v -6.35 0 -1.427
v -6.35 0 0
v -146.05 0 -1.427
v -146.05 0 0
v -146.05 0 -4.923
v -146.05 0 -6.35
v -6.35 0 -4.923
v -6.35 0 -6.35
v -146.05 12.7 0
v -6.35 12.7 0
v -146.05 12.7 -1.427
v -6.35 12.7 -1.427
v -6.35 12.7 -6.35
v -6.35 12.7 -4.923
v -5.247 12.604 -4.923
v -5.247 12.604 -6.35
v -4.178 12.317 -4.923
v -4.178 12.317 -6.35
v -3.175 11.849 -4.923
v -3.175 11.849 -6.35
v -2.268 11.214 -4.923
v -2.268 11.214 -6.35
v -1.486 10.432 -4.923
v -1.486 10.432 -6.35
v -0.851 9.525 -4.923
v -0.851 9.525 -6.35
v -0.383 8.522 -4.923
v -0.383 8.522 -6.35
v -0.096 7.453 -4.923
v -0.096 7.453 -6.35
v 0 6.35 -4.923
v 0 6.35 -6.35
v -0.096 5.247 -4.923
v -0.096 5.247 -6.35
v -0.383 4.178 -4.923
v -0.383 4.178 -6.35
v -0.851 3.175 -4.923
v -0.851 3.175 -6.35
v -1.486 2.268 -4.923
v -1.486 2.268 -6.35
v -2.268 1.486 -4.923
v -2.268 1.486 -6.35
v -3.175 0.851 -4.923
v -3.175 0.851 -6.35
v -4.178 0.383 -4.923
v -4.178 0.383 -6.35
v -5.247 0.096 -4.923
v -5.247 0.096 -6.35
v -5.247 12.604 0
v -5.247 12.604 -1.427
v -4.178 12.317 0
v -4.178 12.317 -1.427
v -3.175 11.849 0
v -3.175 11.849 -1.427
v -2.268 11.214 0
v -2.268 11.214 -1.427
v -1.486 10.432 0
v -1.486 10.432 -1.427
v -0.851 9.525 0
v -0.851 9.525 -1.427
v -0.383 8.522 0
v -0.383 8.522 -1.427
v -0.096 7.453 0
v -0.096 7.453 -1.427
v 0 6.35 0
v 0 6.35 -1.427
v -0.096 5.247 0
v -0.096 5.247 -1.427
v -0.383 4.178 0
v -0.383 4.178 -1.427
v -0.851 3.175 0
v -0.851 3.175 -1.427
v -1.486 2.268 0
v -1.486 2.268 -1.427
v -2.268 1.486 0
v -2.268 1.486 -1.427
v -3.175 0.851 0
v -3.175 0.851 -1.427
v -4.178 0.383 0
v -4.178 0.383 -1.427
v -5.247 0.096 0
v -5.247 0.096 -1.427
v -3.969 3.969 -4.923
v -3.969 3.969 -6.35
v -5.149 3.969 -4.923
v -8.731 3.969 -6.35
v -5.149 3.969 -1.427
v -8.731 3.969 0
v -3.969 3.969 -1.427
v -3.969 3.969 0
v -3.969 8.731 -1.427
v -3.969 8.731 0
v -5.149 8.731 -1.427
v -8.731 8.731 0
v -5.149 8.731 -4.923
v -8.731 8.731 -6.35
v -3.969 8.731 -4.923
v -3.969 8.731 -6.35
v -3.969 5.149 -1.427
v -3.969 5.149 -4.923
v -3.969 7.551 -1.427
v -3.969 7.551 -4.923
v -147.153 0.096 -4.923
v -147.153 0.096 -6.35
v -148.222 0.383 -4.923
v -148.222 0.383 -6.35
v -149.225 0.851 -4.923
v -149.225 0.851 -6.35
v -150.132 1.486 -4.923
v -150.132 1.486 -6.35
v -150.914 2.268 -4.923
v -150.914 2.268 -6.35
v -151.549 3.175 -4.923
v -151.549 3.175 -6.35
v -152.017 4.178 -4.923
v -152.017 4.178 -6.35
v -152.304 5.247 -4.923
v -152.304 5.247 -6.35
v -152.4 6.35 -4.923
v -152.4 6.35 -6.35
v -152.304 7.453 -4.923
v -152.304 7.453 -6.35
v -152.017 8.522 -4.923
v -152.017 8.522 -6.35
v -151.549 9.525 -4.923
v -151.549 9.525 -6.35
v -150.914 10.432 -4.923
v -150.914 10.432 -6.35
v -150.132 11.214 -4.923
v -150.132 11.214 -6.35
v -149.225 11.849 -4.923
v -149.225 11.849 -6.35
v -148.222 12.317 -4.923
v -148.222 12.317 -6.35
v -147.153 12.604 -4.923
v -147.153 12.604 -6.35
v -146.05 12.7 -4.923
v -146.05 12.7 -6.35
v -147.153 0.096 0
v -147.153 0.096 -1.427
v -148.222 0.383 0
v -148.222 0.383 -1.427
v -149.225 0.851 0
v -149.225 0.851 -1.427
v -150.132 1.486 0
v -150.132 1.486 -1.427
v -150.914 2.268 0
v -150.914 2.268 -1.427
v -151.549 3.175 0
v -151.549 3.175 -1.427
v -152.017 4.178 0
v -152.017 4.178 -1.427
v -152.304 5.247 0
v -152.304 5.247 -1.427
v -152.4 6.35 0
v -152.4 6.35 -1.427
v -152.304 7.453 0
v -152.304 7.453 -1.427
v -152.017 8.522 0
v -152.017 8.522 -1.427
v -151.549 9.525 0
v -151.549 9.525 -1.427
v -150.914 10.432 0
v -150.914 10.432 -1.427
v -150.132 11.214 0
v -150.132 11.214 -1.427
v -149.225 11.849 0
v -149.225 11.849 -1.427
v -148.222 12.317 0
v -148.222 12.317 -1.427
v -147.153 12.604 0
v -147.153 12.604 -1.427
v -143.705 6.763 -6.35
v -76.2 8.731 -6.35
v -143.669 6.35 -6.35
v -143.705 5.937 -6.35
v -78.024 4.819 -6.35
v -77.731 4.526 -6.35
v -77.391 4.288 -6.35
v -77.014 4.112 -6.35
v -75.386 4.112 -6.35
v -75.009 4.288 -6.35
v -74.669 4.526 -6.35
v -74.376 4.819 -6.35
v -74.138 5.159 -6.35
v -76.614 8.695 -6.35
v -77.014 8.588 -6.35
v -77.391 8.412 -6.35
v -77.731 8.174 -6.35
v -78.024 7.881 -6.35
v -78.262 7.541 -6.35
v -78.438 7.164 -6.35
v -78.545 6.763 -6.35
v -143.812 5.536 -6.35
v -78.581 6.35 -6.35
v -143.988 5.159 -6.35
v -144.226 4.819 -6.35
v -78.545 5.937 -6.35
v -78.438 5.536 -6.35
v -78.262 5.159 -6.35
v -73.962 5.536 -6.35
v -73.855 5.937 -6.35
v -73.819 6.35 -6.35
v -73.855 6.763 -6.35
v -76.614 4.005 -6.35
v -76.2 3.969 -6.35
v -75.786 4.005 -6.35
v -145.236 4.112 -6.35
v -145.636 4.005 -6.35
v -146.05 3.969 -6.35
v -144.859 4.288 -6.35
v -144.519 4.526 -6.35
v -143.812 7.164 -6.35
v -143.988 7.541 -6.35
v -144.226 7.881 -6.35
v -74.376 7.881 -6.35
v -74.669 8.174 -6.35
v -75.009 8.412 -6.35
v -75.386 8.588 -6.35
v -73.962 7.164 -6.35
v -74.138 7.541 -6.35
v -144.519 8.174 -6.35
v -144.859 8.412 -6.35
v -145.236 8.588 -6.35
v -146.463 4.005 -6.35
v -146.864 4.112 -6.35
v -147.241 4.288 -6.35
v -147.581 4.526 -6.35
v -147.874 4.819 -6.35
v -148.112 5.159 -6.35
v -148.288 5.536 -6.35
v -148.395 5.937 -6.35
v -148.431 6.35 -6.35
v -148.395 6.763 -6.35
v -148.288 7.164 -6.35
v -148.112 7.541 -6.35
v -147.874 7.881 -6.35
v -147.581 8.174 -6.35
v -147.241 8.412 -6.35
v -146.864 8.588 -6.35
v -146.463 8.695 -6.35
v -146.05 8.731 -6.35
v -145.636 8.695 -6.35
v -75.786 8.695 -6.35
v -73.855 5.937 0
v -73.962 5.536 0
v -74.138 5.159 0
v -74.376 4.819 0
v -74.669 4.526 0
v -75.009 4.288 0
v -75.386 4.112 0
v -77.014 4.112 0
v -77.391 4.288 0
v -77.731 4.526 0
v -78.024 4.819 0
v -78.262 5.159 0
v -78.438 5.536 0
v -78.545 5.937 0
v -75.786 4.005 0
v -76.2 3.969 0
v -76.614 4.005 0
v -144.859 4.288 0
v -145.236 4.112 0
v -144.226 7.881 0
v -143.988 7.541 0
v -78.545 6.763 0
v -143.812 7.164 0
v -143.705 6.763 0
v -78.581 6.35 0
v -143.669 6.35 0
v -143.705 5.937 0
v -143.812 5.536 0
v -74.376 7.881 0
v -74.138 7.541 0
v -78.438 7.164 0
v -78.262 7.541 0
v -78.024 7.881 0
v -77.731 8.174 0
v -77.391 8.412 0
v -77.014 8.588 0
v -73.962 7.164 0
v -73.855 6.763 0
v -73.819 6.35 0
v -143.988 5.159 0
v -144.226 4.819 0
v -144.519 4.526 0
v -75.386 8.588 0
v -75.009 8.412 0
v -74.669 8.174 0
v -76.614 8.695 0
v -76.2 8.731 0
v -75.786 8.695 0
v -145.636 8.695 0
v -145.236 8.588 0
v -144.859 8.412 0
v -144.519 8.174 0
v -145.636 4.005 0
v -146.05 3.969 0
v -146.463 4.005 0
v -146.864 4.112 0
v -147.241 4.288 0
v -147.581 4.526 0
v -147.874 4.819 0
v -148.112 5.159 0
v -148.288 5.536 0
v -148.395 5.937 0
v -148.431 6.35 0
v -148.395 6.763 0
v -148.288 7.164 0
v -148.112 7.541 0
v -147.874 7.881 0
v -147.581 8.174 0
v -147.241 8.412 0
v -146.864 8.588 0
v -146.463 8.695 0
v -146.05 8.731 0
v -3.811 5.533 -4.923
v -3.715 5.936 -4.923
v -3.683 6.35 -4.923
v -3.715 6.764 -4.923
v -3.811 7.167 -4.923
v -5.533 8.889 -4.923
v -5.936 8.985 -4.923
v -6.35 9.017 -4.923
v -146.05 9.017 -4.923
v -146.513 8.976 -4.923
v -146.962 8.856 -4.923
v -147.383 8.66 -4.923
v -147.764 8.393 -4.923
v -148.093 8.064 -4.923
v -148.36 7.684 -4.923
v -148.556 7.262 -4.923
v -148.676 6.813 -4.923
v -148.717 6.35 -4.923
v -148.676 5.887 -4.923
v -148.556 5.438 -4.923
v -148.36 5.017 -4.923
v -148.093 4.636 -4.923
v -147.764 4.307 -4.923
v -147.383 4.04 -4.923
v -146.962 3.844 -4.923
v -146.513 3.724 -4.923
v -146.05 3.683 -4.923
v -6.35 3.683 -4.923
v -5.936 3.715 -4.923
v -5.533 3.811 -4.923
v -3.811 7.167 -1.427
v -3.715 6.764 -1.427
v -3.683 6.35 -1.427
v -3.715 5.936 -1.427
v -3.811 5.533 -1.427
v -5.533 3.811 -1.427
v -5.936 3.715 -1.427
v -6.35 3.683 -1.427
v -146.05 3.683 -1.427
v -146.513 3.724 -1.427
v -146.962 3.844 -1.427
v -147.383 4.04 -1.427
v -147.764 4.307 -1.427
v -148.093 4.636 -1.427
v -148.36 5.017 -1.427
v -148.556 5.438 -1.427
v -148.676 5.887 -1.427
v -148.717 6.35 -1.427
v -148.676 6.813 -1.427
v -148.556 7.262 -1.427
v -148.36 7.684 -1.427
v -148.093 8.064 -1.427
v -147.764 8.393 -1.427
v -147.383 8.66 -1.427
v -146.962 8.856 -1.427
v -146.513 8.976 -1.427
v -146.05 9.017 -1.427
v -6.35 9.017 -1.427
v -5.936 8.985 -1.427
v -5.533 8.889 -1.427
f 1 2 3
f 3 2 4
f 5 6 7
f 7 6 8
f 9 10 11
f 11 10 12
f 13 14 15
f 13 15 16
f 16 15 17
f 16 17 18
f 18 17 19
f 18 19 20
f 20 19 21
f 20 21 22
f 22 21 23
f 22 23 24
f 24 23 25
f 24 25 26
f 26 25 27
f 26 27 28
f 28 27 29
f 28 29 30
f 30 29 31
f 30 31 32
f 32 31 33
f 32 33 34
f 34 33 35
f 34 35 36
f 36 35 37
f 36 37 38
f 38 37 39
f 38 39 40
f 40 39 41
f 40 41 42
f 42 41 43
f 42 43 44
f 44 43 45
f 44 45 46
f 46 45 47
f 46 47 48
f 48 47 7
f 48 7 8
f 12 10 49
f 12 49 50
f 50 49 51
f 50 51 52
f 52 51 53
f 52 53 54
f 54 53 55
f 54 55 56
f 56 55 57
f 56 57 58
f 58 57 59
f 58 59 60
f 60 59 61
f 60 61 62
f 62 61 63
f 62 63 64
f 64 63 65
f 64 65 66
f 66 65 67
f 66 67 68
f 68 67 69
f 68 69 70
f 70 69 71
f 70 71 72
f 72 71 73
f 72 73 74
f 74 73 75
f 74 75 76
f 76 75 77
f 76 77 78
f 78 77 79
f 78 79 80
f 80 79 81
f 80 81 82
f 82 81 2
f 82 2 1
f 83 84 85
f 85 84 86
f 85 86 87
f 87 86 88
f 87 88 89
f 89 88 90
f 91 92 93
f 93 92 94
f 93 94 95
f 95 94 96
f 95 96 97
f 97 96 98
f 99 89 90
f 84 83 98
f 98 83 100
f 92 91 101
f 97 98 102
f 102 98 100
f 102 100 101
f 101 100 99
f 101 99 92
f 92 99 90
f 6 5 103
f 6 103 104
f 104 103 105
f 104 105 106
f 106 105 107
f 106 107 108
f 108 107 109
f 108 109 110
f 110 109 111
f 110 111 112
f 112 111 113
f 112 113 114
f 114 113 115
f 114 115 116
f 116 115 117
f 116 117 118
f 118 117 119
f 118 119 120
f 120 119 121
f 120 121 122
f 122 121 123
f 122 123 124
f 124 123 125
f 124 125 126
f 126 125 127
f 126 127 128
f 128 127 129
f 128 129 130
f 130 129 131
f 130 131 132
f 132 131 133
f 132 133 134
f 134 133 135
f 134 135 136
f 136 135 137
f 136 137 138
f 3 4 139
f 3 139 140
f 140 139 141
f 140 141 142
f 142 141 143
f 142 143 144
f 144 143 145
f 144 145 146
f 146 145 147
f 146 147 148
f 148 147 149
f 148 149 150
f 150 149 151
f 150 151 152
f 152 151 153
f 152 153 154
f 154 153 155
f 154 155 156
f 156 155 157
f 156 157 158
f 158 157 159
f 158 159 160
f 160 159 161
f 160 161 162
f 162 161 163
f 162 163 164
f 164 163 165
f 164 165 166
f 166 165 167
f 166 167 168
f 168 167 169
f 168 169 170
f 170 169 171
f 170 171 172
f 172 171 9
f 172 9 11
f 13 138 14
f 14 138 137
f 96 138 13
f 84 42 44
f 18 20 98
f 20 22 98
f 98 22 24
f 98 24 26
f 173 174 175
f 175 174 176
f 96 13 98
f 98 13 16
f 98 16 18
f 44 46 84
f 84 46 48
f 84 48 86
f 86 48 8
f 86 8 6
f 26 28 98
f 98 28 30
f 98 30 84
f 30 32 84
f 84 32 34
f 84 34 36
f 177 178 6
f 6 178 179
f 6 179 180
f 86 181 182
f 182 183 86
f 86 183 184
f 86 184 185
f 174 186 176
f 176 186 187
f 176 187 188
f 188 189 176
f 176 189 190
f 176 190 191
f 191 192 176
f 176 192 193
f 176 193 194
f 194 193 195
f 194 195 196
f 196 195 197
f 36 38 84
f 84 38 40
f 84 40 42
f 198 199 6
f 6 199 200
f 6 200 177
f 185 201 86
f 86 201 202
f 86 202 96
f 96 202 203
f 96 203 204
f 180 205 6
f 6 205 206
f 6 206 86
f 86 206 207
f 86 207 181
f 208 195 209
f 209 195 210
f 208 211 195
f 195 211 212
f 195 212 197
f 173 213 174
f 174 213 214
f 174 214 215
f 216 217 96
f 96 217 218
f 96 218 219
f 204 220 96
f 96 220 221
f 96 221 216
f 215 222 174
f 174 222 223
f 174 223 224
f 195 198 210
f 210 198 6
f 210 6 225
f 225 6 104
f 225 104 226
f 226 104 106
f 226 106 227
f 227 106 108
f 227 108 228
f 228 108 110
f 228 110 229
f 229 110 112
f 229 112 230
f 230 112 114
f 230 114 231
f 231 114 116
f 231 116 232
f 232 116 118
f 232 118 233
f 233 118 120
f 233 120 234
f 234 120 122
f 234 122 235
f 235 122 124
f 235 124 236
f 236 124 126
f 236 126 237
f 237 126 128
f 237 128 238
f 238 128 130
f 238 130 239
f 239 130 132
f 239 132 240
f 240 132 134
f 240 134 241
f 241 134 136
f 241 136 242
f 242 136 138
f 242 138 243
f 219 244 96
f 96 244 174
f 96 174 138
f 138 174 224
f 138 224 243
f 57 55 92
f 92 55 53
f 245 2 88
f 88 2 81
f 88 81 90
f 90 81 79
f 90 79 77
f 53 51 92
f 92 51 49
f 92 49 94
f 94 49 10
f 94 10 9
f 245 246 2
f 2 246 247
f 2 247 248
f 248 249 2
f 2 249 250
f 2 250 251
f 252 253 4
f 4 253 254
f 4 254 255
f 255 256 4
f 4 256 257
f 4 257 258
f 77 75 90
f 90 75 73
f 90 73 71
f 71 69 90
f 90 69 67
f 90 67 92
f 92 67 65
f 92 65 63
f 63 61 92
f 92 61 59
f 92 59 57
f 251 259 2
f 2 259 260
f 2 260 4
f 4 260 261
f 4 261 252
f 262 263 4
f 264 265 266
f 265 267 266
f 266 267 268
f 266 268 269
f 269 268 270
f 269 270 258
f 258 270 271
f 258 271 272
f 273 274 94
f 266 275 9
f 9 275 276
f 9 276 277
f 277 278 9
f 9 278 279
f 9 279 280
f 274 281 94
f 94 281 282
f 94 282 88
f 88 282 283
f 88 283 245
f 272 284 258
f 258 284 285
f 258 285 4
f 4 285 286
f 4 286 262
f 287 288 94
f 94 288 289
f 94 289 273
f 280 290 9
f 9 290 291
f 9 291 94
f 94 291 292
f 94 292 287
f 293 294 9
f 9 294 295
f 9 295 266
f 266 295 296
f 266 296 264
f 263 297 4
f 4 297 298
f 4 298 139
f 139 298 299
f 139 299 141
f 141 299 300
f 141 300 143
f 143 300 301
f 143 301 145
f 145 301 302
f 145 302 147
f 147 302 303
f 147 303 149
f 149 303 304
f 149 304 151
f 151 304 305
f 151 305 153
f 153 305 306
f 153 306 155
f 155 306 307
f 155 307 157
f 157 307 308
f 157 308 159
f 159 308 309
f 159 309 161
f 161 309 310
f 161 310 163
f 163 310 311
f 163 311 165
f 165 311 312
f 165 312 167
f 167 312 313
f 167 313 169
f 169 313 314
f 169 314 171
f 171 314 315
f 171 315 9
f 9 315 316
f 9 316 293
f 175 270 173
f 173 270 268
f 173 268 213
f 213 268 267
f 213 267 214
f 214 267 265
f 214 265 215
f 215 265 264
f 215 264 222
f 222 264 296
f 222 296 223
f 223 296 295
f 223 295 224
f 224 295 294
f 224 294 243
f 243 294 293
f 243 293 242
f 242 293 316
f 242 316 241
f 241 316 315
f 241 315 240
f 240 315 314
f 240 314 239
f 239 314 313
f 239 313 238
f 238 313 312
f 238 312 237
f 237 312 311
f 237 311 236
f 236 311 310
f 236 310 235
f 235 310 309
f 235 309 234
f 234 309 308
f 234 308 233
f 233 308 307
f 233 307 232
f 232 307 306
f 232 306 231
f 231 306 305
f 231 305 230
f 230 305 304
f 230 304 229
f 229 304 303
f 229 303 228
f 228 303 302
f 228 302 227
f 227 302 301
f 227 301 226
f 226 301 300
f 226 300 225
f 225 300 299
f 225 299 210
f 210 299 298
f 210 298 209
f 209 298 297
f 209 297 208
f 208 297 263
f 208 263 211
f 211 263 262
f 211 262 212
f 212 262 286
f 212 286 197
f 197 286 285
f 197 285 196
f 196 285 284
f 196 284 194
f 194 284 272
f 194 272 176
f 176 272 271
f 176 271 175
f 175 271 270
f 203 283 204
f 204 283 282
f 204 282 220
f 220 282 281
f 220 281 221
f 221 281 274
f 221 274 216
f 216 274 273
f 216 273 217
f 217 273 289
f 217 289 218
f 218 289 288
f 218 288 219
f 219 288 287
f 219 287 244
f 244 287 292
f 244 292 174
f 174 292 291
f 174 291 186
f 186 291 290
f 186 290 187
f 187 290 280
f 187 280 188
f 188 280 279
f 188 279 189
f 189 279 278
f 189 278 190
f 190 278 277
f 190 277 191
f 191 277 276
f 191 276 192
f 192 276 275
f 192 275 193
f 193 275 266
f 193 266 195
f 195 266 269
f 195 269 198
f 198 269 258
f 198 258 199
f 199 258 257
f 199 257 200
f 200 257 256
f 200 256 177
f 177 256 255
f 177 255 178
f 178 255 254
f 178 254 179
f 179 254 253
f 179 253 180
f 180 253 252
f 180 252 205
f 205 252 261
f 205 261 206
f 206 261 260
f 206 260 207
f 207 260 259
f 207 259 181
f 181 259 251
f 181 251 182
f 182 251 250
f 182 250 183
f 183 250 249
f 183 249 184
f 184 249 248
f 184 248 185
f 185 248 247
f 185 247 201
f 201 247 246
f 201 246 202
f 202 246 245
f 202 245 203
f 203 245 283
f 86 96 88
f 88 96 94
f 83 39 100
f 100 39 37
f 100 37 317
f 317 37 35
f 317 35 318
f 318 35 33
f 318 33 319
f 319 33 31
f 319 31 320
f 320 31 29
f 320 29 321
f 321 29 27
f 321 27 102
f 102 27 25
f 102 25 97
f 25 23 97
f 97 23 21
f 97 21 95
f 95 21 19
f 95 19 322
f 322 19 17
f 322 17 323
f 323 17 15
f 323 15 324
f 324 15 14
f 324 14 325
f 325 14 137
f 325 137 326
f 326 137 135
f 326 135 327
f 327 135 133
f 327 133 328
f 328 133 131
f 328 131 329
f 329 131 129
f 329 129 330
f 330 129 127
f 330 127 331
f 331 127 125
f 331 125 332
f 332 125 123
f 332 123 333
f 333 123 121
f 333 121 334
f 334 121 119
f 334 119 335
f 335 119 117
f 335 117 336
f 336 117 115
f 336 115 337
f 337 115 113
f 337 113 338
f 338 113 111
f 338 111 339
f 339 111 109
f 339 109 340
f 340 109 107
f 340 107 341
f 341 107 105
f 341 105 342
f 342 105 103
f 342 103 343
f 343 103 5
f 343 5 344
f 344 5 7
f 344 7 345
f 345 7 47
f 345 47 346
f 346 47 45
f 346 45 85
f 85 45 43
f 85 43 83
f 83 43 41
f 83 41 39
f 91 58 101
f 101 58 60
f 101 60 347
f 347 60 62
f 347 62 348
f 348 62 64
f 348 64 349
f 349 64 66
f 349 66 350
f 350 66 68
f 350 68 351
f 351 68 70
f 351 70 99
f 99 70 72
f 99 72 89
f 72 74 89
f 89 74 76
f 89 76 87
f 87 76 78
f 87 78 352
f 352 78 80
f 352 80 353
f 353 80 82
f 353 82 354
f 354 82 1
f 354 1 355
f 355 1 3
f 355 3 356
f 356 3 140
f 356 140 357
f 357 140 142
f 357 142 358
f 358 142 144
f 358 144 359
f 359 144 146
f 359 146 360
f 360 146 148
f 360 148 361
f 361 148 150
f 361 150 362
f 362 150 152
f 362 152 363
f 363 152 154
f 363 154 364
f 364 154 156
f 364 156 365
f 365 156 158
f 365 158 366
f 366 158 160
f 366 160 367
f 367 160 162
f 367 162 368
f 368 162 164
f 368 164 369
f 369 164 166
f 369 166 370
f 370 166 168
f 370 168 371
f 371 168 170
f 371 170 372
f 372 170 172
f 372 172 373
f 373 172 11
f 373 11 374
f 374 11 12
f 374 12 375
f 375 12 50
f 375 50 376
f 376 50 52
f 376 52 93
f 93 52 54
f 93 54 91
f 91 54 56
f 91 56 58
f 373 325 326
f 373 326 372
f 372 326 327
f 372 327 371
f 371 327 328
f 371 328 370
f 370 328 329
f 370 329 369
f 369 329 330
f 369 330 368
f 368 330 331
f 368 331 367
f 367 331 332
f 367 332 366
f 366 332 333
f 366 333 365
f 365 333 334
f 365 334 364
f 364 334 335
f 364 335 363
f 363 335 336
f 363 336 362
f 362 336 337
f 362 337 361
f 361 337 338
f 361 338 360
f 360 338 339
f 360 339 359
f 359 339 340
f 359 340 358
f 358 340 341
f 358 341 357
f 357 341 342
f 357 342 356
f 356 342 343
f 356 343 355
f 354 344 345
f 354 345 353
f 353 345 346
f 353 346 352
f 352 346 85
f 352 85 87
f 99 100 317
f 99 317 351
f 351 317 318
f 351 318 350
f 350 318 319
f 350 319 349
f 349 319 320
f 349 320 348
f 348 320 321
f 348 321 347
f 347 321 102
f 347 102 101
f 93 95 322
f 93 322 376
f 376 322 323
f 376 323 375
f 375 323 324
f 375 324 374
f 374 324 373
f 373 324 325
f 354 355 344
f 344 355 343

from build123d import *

# Parameters (mm, degrees)
ESQUISSE1_W             = 152.4
ESQUISSE1_H             = 12.7
BOSS_EXTRU_1_DEPTH      = 6.35
ESQUISSE2_R             = 2.38125
ENL_V_MAT_EXTRU_1_DEPTH = 154.060029074
SKETCH1_W               = 14.17076538
SKETCH1_H               = 3.495000122
CUT_REVOLVE1_ANGLE      = 180
SKETCH2_W               = 3.495000122
SKETCH2_H               = 3.683
CUT_EXTRUDE1_DEPTH      = 154.060029074


with BuildPart() as part:
    # Esquisse1 → Boss.-Extru.1 (new body)
    with BuildSketch(Plane.XY):
        with Locations((-76.2, 6.35)):
            Rectangle(ESQUISSE1_W, ESQUISSE1_H)
    extrude(amount=-BOSS_EXTRU_1_DEPTH)

    # Esquisse2 → Enlèv. mat.-Extru.1 (cut, through all)
    with BuildSketch(Plane.XY):
        with Locations((-146.05, 6.35)):
            Circle(ESQUISSE2_R)
        with Locations((-76.2, 6.35)):
            Circle(ESQUISSE2_R)
        with Locations((-6.35, 6.35)):
            Circle(ESQUISSE2_R)
        with BuildLine():
            Line((0, 12.7), (-6.35, 12.7))
            ThreePointArc((-6.35, 12.7), (-1.859871939, 10.840128061), (0, 6.35))
            Line((0, 6.35), (0, 12.7))
        make_face()
        with BuildLine():
            Line((0, 0), (0, 6.35))
            ThreePointArc((0, 6.35), (-1.859871939, 1.859871939), (-6.35, 0))
            Line((-6.35, 0), (0, 0))
        make_face()
        with BuildLine():
            ThreePointArc((-152.4, 6.35), (-150.540128061, 10.840128061), (-146.05, 12.7))
            Line((-146.05, 12.7), (-152.4, 12.7))
            Line((-152.4, 12.7), (-152.4, 6.35))
        make_face()
        with BuildLine():
            ThreePointArc((-146.05, 0), (-150.540128061, 1.859871939), (-152.4, 6.35))
            Line((-152.4, 6.35), (-152.4, 0))
            Line((-152.4, 0), (-146.05, 0))
        make_face()
        with BuildLine():
            Line((-8.73125, 8.73125), (-8.73125, 6.35))
            ThreePointArc((-8.73125, 6.35), (-8.033798023, 8.033798023), (-6.35, 8.73125))
            Line((-6.35, 8.73125), (-8.73125, 8.73125))
        make_face()
        with BuildLine():
            ThreePointArc((-6.35, 8.73125), (-4.666201977, 8.033798023), (-3.96875, 6.35))
            Line((-3.96875, 6.35), (-3.96875, 8.73125))
            Line((-3.96875, 8.73125), (-6.35, 8.73125))
        make_face()
        with BuildLine():
            ThreePointArc((-3.96875, 6.35), (-4.666201977, 4.666201977), (-6.35, 3.96875))
            Line((-6.35, 3.96875), (-3.96875, 3.96875))
            Line((-3.96875, 3.96875), (-3.96875, 6.35))
        make_face()
        with BuildLine():
            Line((-8.73125, 6.35), (-8.73125, 3.96875))
            Line((-8.73125, 3.96875), (-6.35, 3.96875))
            ThreePointArc((-6.35, 3.96875), (-8.033798023, 4.666201977), (-8.73125, 6.35))
        make_face()
    extrude(amount=-ENL_V_MAT_EXTRU_1_DEPTH, mode=Mode.SUBTRACT)

    # Sketch1 → Cut-Revolve1 (revolve, symmetric, cut)
    with BuildSketch(Plane(origin=(0, 6.35, 0), x_dir=(1, 0, 0), z_dir=(0, 1, 0))) as cut_revolve1_sk:
        Polygon((-150.5585, 1.427499939), (-152.4, 1.427499939), (-152.4, 4.922500061), (-150.5585, 4.922500061), (-148.717, 4.922500061), (-148.717, 1.427499939), align=None)
        with Locations((-159.48538269, 3.175)):
            Rectangle(SKETCH1_W, SKETCH1_H)
    cut_revolve1 = revolve(axis=Axis((-146.05, 6.35, -6.35), (0, 0, 1)), revolution_arc=CUT_REVOLVE1_ANGLE / 2, mode=Mode.SUBTRACT)
    cut_revolve1 = cut_revolve1 + revolve(cut_revolve1_sk.sketch, axis=Axis((-146.05, 6.35, -6.35), (0, 0, -1)), revolution_arc=CUT_REVOLVE1_ANGLE / 2, mode=Mode.SUBTRACT)

    # Mirror1: Cut-Revolve1 across plane
    add(cut_revolve1.mirror(Plane(origin=(-76.2, 0, 0), x_dir=(0, 0, 1), z_dir=(1, 0, 0))), mode=Mode.SUBTRACT)

    # Sketch2 → Cut-Extrude1 (cut, through all)
    with BuildSketch(Plane(origin=(0, 0, 0), x_dir=(0, 0, -1), z_dir=(1, 0, 0))):
        with Locations((3.175, 10.8585)):
            Rectangle(SKETCH2_W, SKETCH2_H)
    cut_extrude1 = extrude(amount=-CUT_EXTRUDE1_DEPTH, mode=Mode.SUBTRACT)

    # Mirror2: Cut-Extrude1 across plane
    add(cut_extrude1.mirror(Plane.ZX.offset(6.35)), mode=Mode.SUBTRACT)


solid = part.part
